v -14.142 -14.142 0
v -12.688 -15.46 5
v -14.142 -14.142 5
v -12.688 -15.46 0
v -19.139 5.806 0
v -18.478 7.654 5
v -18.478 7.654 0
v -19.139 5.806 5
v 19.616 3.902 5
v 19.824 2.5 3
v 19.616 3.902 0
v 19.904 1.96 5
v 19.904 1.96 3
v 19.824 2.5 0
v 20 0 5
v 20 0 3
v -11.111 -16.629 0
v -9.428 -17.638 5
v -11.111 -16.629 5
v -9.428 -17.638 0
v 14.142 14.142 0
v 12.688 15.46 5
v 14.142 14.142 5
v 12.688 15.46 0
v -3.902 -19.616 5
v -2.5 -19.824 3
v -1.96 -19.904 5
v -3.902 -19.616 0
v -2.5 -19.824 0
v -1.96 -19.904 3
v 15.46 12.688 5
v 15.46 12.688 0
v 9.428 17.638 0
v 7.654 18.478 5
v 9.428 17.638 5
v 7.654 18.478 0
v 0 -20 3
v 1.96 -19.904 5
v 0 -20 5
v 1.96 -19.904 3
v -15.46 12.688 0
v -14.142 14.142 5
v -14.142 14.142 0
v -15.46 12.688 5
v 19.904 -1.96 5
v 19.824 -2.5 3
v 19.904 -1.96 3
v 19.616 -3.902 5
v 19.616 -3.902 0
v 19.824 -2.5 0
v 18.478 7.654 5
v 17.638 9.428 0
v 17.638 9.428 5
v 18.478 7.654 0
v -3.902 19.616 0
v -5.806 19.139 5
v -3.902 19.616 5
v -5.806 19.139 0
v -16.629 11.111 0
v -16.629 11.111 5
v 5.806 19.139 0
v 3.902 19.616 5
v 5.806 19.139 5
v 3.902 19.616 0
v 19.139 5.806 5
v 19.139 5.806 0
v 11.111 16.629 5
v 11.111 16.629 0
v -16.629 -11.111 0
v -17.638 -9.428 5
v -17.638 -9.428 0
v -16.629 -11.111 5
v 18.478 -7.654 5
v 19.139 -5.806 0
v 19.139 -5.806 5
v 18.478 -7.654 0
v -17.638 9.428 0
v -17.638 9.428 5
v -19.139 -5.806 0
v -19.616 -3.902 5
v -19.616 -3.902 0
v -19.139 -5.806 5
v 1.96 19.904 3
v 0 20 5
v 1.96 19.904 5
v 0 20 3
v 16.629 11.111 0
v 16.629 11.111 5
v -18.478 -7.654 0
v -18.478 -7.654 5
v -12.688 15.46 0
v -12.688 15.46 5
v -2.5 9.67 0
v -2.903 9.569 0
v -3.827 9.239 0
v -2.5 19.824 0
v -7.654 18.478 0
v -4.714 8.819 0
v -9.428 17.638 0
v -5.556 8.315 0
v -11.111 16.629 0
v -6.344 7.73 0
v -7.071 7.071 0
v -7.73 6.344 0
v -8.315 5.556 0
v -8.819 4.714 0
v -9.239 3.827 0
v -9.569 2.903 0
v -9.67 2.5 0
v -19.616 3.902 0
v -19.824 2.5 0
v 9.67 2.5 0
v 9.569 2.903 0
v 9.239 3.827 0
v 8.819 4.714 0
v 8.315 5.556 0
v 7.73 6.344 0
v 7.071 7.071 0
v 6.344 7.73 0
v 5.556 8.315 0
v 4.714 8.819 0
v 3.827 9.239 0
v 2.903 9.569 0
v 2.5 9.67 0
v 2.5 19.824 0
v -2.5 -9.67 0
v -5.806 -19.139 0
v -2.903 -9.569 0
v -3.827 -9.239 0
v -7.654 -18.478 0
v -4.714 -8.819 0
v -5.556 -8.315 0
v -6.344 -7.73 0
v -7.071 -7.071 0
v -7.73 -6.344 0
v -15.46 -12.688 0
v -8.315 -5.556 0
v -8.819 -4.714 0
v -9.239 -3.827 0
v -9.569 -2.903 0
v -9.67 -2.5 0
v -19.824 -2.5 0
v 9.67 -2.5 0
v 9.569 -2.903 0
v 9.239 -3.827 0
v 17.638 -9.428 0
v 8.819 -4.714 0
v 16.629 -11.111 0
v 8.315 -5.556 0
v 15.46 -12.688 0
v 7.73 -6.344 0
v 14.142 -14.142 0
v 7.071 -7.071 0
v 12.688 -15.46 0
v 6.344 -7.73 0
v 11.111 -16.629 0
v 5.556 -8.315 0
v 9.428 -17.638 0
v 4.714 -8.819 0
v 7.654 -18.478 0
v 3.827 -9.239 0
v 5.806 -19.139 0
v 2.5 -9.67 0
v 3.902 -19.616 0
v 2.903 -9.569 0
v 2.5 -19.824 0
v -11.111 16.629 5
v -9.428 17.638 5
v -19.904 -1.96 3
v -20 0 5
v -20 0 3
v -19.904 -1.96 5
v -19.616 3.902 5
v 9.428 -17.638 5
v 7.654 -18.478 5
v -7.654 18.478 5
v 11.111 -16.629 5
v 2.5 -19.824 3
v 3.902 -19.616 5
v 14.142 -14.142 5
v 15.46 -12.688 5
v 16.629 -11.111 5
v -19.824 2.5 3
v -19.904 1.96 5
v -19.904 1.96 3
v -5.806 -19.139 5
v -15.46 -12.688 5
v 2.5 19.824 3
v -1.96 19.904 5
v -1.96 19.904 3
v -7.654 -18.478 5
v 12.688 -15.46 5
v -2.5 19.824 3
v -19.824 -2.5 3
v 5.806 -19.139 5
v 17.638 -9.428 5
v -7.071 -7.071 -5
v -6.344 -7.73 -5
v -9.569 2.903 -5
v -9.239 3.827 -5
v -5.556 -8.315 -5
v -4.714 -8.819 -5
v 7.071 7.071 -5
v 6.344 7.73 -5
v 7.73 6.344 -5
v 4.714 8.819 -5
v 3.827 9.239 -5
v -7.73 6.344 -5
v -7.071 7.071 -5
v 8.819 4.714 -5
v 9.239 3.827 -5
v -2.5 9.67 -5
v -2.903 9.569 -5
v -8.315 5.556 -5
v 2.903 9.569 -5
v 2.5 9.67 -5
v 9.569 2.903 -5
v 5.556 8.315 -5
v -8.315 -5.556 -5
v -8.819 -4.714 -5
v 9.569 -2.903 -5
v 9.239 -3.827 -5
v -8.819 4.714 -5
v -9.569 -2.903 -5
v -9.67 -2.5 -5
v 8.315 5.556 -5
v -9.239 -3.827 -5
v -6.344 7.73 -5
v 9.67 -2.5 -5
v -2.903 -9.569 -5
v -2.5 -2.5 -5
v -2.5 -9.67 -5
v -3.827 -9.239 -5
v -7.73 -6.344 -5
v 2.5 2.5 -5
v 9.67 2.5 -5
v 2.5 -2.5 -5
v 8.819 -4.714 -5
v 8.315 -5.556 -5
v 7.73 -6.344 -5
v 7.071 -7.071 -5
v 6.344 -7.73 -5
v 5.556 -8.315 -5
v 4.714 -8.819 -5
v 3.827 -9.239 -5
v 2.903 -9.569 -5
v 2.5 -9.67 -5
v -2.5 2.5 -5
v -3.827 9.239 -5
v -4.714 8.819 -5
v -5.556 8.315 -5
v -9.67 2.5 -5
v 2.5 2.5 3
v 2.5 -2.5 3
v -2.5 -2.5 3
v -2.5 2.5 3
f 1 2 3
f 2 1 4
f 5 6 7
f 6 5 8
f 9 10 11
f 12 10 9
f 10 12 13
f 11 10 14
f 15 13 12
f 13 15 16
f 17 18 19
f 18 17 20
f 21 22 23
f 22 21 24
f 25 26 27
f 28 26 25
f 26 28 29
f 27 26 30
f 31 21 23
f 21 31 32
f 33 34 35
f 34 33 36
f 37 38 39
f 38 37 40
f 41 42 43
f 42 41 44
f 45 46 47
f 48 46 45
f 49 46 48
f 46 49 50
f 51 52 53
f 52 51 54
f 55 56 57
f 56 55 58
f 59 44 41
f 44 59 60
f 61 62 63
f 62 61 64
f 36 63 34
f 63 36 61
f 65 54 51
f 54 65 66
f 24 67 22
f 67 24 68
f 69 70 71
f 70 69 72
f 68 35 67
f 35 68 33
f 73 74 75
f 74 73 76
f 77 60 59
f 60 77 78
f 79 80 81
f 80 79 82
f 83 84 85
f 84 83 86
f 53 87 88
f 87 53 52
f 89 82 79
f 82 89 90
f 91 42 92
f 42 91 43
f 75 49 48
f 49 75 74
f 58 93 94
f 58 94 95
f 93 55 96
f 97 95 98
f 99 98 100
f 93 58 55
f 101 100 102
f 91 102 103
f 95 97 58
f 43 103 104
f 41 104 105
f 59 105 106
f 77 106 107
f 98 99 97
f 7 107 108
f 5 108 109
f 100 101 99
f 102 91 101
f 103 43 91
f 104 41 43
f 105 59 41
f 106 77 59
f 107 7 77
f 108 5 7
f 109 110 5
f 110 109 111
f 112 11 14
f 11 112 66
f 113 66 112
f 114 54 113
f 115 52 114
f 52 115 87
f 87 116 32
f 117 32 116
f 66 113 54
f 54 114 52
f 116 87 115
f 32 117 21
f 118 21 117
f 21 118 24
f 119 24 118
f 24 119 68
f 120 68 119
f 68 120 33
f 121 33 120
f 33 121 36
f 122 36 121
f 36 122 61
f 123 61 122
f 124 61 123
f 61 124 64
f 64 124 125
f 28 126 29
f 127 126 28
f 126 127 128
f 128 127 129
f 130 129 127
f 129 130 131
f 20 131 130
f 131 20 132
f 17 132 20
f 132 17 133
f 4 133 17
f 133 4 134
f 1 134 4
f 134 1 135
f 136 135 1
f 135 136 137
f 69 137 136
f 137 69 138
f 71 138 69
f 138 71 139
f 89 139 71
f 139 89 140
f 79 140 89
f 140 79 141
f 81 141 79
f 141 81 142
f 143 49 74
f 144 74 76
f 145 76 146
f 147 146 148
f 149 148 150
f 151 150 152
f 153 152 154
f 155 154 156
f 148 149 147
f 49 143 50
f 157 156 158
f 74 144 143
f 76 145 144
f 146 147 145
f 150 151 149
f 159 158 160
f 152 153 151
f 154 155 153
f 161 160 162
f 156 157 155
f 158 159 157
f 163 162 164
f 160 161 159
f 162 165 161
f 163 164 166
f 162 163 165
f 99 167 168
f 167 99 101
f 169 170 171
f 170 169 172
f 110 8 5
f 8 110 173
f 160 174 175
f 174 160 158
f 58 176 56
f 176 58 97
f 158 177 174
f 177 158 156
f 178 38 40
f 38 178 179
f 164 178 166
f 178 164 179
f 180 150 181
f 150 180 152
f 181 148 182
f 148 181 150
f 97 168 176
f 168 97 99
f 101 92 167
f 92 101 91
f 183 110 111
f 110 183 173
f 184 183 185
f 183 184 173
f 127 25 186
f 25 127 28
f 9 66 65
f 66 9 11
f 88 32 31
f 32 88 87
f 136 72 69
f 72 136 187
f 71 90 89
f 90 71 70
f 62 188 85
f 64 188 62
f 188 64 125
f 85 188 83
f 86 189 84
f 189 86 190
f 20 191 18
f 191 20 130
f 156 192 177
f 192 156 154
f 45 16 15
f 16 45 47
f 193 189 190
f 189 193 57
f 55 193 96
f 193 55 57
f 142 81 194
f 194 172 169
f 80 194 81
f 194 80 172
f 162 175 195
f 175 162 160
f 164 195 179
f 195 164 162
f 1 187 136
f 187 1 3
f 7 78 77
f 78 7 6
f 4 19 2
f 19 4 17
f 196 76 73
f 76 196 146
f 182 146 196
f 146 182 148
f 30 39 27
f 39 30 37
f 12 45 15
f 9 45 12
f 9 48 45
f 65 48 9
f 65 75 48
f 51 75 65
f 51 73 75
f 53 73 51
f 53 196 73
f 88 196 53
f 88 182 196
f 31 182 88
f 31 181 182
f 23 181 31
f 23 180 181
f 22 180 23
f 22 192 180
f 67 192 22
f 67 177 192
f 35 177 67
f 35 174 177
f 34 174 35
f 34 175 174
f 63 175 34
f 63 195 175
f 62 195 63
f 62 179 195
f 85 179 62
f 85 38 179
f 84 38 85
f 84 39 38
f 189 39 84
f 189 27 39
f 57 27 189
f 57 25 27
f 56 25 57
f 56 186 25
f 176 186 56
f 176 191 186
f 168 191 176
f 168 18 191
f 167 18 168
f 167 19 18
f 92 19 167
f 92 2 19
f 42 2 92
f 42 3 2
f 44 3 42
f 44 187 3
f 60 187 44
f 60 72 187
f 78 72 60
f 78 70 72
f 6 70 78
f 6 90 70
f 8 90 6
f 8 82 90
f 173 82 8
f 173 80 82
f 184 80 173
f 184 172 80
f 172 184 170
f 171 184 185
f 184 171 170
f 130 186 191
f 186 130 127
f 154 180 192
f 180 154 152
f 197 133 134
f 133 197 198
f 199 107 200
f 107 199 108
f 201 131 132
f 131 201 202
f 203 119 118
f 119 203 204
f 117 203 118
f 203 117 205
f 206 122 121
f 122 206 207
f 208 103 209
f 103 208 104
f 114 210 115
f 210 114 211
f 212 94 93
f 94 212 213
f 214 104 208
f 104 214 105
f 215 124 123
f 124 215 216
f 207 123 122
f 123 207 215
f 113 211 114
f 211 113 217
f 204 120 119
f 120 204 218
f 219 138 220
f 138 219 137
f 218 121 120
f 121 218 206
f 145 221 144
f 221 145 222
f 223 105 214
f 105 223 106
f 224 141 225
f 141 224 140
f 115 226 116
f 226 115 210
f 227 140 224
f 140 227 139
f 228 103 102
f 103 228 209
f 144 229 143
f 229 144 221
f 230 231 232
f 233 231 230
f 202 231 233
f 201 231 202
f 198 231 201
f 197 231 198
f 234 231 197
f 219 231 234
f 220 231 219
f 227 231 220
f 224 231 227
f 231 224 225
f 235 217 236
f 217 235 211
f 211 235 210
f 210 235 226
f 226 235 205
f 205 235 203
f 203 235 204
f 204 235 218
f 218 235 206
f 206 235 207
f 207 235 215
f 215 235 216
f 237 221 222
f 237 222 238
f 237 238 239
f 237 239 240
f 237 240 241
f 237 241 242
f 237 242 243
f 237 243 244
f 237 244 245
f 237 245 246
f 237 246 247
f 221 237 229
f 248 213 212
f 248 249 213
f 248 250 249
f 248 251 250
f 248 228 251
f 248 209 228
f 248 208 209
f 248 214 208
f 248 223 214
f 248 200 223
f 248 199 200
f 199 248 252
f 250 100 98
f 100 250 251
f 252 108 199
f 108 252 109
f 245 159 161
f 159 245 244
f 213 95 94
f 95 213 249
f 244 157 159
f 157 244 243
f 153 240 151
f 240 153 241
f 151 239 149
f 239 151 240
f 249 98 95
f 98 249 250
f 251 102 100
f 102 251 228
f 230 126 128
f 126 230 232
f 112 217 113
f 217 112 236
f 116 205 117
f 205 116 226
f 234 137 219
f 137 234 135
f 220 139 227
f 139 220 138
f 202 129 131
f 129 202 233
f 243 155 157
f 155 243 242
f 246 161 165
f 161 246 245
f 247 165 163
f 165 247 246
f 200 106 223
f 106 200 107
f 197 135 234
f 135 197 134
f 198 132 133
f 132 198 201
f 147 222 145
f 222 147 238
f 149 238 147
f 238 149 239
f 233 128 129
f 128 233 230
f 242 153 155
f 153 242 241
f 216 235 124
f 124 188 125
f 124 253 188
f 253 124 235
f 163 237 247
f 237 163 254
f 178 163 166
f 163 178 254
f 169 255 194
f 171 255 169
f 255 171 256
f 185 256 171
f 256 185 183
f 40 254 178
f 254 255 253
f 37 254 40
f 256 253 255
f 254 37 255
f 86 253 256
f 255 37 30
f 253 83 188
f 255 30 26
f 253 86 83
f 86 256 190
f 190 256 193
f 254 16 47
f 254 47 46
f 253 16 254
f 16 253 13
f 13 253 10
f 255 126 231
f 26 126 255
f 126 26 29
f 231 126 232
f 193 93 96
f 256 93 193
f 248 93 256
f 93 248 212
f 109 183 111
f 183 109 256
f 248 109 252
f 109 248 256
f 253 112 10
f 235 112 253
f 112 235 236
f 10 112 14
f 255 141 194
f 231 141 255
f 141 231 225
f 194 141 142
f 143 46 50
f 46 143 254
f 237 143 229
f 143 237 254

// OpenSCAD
lid_diameter = 40;
lid_thickness = 5;
bung_diameter = 20;
bung_height = 5;
slot_width = 5;
groove_depth = 3; // cuts into underside of lid, leaving 2mm solid on top

drain_hole_diameter = 6;
drain_hole_ring_radius = 17;
drain_hole_count = 6;

difference() {
    union() {
        cylinder(h = lid_thickness, d = lid_diameter, $fn = 64);
        translate([0, 0, -bung_height])
            cylinder(h = bung_height, d = bung_diameter, $fn = 64);
    }
    // Crossed grooves across full underside of lid + through bung
    translate([-slot_width/2, -lid_diameter/2, -bung_height])
        cube([slot_width, lid_diameter, bung_height + groove_depth]);
    translate([-lid_diameter/2, -slot_width/2, -bung_height])
        cube([lid_diameter, slot_width, bung_height + groove_depth]);

}
